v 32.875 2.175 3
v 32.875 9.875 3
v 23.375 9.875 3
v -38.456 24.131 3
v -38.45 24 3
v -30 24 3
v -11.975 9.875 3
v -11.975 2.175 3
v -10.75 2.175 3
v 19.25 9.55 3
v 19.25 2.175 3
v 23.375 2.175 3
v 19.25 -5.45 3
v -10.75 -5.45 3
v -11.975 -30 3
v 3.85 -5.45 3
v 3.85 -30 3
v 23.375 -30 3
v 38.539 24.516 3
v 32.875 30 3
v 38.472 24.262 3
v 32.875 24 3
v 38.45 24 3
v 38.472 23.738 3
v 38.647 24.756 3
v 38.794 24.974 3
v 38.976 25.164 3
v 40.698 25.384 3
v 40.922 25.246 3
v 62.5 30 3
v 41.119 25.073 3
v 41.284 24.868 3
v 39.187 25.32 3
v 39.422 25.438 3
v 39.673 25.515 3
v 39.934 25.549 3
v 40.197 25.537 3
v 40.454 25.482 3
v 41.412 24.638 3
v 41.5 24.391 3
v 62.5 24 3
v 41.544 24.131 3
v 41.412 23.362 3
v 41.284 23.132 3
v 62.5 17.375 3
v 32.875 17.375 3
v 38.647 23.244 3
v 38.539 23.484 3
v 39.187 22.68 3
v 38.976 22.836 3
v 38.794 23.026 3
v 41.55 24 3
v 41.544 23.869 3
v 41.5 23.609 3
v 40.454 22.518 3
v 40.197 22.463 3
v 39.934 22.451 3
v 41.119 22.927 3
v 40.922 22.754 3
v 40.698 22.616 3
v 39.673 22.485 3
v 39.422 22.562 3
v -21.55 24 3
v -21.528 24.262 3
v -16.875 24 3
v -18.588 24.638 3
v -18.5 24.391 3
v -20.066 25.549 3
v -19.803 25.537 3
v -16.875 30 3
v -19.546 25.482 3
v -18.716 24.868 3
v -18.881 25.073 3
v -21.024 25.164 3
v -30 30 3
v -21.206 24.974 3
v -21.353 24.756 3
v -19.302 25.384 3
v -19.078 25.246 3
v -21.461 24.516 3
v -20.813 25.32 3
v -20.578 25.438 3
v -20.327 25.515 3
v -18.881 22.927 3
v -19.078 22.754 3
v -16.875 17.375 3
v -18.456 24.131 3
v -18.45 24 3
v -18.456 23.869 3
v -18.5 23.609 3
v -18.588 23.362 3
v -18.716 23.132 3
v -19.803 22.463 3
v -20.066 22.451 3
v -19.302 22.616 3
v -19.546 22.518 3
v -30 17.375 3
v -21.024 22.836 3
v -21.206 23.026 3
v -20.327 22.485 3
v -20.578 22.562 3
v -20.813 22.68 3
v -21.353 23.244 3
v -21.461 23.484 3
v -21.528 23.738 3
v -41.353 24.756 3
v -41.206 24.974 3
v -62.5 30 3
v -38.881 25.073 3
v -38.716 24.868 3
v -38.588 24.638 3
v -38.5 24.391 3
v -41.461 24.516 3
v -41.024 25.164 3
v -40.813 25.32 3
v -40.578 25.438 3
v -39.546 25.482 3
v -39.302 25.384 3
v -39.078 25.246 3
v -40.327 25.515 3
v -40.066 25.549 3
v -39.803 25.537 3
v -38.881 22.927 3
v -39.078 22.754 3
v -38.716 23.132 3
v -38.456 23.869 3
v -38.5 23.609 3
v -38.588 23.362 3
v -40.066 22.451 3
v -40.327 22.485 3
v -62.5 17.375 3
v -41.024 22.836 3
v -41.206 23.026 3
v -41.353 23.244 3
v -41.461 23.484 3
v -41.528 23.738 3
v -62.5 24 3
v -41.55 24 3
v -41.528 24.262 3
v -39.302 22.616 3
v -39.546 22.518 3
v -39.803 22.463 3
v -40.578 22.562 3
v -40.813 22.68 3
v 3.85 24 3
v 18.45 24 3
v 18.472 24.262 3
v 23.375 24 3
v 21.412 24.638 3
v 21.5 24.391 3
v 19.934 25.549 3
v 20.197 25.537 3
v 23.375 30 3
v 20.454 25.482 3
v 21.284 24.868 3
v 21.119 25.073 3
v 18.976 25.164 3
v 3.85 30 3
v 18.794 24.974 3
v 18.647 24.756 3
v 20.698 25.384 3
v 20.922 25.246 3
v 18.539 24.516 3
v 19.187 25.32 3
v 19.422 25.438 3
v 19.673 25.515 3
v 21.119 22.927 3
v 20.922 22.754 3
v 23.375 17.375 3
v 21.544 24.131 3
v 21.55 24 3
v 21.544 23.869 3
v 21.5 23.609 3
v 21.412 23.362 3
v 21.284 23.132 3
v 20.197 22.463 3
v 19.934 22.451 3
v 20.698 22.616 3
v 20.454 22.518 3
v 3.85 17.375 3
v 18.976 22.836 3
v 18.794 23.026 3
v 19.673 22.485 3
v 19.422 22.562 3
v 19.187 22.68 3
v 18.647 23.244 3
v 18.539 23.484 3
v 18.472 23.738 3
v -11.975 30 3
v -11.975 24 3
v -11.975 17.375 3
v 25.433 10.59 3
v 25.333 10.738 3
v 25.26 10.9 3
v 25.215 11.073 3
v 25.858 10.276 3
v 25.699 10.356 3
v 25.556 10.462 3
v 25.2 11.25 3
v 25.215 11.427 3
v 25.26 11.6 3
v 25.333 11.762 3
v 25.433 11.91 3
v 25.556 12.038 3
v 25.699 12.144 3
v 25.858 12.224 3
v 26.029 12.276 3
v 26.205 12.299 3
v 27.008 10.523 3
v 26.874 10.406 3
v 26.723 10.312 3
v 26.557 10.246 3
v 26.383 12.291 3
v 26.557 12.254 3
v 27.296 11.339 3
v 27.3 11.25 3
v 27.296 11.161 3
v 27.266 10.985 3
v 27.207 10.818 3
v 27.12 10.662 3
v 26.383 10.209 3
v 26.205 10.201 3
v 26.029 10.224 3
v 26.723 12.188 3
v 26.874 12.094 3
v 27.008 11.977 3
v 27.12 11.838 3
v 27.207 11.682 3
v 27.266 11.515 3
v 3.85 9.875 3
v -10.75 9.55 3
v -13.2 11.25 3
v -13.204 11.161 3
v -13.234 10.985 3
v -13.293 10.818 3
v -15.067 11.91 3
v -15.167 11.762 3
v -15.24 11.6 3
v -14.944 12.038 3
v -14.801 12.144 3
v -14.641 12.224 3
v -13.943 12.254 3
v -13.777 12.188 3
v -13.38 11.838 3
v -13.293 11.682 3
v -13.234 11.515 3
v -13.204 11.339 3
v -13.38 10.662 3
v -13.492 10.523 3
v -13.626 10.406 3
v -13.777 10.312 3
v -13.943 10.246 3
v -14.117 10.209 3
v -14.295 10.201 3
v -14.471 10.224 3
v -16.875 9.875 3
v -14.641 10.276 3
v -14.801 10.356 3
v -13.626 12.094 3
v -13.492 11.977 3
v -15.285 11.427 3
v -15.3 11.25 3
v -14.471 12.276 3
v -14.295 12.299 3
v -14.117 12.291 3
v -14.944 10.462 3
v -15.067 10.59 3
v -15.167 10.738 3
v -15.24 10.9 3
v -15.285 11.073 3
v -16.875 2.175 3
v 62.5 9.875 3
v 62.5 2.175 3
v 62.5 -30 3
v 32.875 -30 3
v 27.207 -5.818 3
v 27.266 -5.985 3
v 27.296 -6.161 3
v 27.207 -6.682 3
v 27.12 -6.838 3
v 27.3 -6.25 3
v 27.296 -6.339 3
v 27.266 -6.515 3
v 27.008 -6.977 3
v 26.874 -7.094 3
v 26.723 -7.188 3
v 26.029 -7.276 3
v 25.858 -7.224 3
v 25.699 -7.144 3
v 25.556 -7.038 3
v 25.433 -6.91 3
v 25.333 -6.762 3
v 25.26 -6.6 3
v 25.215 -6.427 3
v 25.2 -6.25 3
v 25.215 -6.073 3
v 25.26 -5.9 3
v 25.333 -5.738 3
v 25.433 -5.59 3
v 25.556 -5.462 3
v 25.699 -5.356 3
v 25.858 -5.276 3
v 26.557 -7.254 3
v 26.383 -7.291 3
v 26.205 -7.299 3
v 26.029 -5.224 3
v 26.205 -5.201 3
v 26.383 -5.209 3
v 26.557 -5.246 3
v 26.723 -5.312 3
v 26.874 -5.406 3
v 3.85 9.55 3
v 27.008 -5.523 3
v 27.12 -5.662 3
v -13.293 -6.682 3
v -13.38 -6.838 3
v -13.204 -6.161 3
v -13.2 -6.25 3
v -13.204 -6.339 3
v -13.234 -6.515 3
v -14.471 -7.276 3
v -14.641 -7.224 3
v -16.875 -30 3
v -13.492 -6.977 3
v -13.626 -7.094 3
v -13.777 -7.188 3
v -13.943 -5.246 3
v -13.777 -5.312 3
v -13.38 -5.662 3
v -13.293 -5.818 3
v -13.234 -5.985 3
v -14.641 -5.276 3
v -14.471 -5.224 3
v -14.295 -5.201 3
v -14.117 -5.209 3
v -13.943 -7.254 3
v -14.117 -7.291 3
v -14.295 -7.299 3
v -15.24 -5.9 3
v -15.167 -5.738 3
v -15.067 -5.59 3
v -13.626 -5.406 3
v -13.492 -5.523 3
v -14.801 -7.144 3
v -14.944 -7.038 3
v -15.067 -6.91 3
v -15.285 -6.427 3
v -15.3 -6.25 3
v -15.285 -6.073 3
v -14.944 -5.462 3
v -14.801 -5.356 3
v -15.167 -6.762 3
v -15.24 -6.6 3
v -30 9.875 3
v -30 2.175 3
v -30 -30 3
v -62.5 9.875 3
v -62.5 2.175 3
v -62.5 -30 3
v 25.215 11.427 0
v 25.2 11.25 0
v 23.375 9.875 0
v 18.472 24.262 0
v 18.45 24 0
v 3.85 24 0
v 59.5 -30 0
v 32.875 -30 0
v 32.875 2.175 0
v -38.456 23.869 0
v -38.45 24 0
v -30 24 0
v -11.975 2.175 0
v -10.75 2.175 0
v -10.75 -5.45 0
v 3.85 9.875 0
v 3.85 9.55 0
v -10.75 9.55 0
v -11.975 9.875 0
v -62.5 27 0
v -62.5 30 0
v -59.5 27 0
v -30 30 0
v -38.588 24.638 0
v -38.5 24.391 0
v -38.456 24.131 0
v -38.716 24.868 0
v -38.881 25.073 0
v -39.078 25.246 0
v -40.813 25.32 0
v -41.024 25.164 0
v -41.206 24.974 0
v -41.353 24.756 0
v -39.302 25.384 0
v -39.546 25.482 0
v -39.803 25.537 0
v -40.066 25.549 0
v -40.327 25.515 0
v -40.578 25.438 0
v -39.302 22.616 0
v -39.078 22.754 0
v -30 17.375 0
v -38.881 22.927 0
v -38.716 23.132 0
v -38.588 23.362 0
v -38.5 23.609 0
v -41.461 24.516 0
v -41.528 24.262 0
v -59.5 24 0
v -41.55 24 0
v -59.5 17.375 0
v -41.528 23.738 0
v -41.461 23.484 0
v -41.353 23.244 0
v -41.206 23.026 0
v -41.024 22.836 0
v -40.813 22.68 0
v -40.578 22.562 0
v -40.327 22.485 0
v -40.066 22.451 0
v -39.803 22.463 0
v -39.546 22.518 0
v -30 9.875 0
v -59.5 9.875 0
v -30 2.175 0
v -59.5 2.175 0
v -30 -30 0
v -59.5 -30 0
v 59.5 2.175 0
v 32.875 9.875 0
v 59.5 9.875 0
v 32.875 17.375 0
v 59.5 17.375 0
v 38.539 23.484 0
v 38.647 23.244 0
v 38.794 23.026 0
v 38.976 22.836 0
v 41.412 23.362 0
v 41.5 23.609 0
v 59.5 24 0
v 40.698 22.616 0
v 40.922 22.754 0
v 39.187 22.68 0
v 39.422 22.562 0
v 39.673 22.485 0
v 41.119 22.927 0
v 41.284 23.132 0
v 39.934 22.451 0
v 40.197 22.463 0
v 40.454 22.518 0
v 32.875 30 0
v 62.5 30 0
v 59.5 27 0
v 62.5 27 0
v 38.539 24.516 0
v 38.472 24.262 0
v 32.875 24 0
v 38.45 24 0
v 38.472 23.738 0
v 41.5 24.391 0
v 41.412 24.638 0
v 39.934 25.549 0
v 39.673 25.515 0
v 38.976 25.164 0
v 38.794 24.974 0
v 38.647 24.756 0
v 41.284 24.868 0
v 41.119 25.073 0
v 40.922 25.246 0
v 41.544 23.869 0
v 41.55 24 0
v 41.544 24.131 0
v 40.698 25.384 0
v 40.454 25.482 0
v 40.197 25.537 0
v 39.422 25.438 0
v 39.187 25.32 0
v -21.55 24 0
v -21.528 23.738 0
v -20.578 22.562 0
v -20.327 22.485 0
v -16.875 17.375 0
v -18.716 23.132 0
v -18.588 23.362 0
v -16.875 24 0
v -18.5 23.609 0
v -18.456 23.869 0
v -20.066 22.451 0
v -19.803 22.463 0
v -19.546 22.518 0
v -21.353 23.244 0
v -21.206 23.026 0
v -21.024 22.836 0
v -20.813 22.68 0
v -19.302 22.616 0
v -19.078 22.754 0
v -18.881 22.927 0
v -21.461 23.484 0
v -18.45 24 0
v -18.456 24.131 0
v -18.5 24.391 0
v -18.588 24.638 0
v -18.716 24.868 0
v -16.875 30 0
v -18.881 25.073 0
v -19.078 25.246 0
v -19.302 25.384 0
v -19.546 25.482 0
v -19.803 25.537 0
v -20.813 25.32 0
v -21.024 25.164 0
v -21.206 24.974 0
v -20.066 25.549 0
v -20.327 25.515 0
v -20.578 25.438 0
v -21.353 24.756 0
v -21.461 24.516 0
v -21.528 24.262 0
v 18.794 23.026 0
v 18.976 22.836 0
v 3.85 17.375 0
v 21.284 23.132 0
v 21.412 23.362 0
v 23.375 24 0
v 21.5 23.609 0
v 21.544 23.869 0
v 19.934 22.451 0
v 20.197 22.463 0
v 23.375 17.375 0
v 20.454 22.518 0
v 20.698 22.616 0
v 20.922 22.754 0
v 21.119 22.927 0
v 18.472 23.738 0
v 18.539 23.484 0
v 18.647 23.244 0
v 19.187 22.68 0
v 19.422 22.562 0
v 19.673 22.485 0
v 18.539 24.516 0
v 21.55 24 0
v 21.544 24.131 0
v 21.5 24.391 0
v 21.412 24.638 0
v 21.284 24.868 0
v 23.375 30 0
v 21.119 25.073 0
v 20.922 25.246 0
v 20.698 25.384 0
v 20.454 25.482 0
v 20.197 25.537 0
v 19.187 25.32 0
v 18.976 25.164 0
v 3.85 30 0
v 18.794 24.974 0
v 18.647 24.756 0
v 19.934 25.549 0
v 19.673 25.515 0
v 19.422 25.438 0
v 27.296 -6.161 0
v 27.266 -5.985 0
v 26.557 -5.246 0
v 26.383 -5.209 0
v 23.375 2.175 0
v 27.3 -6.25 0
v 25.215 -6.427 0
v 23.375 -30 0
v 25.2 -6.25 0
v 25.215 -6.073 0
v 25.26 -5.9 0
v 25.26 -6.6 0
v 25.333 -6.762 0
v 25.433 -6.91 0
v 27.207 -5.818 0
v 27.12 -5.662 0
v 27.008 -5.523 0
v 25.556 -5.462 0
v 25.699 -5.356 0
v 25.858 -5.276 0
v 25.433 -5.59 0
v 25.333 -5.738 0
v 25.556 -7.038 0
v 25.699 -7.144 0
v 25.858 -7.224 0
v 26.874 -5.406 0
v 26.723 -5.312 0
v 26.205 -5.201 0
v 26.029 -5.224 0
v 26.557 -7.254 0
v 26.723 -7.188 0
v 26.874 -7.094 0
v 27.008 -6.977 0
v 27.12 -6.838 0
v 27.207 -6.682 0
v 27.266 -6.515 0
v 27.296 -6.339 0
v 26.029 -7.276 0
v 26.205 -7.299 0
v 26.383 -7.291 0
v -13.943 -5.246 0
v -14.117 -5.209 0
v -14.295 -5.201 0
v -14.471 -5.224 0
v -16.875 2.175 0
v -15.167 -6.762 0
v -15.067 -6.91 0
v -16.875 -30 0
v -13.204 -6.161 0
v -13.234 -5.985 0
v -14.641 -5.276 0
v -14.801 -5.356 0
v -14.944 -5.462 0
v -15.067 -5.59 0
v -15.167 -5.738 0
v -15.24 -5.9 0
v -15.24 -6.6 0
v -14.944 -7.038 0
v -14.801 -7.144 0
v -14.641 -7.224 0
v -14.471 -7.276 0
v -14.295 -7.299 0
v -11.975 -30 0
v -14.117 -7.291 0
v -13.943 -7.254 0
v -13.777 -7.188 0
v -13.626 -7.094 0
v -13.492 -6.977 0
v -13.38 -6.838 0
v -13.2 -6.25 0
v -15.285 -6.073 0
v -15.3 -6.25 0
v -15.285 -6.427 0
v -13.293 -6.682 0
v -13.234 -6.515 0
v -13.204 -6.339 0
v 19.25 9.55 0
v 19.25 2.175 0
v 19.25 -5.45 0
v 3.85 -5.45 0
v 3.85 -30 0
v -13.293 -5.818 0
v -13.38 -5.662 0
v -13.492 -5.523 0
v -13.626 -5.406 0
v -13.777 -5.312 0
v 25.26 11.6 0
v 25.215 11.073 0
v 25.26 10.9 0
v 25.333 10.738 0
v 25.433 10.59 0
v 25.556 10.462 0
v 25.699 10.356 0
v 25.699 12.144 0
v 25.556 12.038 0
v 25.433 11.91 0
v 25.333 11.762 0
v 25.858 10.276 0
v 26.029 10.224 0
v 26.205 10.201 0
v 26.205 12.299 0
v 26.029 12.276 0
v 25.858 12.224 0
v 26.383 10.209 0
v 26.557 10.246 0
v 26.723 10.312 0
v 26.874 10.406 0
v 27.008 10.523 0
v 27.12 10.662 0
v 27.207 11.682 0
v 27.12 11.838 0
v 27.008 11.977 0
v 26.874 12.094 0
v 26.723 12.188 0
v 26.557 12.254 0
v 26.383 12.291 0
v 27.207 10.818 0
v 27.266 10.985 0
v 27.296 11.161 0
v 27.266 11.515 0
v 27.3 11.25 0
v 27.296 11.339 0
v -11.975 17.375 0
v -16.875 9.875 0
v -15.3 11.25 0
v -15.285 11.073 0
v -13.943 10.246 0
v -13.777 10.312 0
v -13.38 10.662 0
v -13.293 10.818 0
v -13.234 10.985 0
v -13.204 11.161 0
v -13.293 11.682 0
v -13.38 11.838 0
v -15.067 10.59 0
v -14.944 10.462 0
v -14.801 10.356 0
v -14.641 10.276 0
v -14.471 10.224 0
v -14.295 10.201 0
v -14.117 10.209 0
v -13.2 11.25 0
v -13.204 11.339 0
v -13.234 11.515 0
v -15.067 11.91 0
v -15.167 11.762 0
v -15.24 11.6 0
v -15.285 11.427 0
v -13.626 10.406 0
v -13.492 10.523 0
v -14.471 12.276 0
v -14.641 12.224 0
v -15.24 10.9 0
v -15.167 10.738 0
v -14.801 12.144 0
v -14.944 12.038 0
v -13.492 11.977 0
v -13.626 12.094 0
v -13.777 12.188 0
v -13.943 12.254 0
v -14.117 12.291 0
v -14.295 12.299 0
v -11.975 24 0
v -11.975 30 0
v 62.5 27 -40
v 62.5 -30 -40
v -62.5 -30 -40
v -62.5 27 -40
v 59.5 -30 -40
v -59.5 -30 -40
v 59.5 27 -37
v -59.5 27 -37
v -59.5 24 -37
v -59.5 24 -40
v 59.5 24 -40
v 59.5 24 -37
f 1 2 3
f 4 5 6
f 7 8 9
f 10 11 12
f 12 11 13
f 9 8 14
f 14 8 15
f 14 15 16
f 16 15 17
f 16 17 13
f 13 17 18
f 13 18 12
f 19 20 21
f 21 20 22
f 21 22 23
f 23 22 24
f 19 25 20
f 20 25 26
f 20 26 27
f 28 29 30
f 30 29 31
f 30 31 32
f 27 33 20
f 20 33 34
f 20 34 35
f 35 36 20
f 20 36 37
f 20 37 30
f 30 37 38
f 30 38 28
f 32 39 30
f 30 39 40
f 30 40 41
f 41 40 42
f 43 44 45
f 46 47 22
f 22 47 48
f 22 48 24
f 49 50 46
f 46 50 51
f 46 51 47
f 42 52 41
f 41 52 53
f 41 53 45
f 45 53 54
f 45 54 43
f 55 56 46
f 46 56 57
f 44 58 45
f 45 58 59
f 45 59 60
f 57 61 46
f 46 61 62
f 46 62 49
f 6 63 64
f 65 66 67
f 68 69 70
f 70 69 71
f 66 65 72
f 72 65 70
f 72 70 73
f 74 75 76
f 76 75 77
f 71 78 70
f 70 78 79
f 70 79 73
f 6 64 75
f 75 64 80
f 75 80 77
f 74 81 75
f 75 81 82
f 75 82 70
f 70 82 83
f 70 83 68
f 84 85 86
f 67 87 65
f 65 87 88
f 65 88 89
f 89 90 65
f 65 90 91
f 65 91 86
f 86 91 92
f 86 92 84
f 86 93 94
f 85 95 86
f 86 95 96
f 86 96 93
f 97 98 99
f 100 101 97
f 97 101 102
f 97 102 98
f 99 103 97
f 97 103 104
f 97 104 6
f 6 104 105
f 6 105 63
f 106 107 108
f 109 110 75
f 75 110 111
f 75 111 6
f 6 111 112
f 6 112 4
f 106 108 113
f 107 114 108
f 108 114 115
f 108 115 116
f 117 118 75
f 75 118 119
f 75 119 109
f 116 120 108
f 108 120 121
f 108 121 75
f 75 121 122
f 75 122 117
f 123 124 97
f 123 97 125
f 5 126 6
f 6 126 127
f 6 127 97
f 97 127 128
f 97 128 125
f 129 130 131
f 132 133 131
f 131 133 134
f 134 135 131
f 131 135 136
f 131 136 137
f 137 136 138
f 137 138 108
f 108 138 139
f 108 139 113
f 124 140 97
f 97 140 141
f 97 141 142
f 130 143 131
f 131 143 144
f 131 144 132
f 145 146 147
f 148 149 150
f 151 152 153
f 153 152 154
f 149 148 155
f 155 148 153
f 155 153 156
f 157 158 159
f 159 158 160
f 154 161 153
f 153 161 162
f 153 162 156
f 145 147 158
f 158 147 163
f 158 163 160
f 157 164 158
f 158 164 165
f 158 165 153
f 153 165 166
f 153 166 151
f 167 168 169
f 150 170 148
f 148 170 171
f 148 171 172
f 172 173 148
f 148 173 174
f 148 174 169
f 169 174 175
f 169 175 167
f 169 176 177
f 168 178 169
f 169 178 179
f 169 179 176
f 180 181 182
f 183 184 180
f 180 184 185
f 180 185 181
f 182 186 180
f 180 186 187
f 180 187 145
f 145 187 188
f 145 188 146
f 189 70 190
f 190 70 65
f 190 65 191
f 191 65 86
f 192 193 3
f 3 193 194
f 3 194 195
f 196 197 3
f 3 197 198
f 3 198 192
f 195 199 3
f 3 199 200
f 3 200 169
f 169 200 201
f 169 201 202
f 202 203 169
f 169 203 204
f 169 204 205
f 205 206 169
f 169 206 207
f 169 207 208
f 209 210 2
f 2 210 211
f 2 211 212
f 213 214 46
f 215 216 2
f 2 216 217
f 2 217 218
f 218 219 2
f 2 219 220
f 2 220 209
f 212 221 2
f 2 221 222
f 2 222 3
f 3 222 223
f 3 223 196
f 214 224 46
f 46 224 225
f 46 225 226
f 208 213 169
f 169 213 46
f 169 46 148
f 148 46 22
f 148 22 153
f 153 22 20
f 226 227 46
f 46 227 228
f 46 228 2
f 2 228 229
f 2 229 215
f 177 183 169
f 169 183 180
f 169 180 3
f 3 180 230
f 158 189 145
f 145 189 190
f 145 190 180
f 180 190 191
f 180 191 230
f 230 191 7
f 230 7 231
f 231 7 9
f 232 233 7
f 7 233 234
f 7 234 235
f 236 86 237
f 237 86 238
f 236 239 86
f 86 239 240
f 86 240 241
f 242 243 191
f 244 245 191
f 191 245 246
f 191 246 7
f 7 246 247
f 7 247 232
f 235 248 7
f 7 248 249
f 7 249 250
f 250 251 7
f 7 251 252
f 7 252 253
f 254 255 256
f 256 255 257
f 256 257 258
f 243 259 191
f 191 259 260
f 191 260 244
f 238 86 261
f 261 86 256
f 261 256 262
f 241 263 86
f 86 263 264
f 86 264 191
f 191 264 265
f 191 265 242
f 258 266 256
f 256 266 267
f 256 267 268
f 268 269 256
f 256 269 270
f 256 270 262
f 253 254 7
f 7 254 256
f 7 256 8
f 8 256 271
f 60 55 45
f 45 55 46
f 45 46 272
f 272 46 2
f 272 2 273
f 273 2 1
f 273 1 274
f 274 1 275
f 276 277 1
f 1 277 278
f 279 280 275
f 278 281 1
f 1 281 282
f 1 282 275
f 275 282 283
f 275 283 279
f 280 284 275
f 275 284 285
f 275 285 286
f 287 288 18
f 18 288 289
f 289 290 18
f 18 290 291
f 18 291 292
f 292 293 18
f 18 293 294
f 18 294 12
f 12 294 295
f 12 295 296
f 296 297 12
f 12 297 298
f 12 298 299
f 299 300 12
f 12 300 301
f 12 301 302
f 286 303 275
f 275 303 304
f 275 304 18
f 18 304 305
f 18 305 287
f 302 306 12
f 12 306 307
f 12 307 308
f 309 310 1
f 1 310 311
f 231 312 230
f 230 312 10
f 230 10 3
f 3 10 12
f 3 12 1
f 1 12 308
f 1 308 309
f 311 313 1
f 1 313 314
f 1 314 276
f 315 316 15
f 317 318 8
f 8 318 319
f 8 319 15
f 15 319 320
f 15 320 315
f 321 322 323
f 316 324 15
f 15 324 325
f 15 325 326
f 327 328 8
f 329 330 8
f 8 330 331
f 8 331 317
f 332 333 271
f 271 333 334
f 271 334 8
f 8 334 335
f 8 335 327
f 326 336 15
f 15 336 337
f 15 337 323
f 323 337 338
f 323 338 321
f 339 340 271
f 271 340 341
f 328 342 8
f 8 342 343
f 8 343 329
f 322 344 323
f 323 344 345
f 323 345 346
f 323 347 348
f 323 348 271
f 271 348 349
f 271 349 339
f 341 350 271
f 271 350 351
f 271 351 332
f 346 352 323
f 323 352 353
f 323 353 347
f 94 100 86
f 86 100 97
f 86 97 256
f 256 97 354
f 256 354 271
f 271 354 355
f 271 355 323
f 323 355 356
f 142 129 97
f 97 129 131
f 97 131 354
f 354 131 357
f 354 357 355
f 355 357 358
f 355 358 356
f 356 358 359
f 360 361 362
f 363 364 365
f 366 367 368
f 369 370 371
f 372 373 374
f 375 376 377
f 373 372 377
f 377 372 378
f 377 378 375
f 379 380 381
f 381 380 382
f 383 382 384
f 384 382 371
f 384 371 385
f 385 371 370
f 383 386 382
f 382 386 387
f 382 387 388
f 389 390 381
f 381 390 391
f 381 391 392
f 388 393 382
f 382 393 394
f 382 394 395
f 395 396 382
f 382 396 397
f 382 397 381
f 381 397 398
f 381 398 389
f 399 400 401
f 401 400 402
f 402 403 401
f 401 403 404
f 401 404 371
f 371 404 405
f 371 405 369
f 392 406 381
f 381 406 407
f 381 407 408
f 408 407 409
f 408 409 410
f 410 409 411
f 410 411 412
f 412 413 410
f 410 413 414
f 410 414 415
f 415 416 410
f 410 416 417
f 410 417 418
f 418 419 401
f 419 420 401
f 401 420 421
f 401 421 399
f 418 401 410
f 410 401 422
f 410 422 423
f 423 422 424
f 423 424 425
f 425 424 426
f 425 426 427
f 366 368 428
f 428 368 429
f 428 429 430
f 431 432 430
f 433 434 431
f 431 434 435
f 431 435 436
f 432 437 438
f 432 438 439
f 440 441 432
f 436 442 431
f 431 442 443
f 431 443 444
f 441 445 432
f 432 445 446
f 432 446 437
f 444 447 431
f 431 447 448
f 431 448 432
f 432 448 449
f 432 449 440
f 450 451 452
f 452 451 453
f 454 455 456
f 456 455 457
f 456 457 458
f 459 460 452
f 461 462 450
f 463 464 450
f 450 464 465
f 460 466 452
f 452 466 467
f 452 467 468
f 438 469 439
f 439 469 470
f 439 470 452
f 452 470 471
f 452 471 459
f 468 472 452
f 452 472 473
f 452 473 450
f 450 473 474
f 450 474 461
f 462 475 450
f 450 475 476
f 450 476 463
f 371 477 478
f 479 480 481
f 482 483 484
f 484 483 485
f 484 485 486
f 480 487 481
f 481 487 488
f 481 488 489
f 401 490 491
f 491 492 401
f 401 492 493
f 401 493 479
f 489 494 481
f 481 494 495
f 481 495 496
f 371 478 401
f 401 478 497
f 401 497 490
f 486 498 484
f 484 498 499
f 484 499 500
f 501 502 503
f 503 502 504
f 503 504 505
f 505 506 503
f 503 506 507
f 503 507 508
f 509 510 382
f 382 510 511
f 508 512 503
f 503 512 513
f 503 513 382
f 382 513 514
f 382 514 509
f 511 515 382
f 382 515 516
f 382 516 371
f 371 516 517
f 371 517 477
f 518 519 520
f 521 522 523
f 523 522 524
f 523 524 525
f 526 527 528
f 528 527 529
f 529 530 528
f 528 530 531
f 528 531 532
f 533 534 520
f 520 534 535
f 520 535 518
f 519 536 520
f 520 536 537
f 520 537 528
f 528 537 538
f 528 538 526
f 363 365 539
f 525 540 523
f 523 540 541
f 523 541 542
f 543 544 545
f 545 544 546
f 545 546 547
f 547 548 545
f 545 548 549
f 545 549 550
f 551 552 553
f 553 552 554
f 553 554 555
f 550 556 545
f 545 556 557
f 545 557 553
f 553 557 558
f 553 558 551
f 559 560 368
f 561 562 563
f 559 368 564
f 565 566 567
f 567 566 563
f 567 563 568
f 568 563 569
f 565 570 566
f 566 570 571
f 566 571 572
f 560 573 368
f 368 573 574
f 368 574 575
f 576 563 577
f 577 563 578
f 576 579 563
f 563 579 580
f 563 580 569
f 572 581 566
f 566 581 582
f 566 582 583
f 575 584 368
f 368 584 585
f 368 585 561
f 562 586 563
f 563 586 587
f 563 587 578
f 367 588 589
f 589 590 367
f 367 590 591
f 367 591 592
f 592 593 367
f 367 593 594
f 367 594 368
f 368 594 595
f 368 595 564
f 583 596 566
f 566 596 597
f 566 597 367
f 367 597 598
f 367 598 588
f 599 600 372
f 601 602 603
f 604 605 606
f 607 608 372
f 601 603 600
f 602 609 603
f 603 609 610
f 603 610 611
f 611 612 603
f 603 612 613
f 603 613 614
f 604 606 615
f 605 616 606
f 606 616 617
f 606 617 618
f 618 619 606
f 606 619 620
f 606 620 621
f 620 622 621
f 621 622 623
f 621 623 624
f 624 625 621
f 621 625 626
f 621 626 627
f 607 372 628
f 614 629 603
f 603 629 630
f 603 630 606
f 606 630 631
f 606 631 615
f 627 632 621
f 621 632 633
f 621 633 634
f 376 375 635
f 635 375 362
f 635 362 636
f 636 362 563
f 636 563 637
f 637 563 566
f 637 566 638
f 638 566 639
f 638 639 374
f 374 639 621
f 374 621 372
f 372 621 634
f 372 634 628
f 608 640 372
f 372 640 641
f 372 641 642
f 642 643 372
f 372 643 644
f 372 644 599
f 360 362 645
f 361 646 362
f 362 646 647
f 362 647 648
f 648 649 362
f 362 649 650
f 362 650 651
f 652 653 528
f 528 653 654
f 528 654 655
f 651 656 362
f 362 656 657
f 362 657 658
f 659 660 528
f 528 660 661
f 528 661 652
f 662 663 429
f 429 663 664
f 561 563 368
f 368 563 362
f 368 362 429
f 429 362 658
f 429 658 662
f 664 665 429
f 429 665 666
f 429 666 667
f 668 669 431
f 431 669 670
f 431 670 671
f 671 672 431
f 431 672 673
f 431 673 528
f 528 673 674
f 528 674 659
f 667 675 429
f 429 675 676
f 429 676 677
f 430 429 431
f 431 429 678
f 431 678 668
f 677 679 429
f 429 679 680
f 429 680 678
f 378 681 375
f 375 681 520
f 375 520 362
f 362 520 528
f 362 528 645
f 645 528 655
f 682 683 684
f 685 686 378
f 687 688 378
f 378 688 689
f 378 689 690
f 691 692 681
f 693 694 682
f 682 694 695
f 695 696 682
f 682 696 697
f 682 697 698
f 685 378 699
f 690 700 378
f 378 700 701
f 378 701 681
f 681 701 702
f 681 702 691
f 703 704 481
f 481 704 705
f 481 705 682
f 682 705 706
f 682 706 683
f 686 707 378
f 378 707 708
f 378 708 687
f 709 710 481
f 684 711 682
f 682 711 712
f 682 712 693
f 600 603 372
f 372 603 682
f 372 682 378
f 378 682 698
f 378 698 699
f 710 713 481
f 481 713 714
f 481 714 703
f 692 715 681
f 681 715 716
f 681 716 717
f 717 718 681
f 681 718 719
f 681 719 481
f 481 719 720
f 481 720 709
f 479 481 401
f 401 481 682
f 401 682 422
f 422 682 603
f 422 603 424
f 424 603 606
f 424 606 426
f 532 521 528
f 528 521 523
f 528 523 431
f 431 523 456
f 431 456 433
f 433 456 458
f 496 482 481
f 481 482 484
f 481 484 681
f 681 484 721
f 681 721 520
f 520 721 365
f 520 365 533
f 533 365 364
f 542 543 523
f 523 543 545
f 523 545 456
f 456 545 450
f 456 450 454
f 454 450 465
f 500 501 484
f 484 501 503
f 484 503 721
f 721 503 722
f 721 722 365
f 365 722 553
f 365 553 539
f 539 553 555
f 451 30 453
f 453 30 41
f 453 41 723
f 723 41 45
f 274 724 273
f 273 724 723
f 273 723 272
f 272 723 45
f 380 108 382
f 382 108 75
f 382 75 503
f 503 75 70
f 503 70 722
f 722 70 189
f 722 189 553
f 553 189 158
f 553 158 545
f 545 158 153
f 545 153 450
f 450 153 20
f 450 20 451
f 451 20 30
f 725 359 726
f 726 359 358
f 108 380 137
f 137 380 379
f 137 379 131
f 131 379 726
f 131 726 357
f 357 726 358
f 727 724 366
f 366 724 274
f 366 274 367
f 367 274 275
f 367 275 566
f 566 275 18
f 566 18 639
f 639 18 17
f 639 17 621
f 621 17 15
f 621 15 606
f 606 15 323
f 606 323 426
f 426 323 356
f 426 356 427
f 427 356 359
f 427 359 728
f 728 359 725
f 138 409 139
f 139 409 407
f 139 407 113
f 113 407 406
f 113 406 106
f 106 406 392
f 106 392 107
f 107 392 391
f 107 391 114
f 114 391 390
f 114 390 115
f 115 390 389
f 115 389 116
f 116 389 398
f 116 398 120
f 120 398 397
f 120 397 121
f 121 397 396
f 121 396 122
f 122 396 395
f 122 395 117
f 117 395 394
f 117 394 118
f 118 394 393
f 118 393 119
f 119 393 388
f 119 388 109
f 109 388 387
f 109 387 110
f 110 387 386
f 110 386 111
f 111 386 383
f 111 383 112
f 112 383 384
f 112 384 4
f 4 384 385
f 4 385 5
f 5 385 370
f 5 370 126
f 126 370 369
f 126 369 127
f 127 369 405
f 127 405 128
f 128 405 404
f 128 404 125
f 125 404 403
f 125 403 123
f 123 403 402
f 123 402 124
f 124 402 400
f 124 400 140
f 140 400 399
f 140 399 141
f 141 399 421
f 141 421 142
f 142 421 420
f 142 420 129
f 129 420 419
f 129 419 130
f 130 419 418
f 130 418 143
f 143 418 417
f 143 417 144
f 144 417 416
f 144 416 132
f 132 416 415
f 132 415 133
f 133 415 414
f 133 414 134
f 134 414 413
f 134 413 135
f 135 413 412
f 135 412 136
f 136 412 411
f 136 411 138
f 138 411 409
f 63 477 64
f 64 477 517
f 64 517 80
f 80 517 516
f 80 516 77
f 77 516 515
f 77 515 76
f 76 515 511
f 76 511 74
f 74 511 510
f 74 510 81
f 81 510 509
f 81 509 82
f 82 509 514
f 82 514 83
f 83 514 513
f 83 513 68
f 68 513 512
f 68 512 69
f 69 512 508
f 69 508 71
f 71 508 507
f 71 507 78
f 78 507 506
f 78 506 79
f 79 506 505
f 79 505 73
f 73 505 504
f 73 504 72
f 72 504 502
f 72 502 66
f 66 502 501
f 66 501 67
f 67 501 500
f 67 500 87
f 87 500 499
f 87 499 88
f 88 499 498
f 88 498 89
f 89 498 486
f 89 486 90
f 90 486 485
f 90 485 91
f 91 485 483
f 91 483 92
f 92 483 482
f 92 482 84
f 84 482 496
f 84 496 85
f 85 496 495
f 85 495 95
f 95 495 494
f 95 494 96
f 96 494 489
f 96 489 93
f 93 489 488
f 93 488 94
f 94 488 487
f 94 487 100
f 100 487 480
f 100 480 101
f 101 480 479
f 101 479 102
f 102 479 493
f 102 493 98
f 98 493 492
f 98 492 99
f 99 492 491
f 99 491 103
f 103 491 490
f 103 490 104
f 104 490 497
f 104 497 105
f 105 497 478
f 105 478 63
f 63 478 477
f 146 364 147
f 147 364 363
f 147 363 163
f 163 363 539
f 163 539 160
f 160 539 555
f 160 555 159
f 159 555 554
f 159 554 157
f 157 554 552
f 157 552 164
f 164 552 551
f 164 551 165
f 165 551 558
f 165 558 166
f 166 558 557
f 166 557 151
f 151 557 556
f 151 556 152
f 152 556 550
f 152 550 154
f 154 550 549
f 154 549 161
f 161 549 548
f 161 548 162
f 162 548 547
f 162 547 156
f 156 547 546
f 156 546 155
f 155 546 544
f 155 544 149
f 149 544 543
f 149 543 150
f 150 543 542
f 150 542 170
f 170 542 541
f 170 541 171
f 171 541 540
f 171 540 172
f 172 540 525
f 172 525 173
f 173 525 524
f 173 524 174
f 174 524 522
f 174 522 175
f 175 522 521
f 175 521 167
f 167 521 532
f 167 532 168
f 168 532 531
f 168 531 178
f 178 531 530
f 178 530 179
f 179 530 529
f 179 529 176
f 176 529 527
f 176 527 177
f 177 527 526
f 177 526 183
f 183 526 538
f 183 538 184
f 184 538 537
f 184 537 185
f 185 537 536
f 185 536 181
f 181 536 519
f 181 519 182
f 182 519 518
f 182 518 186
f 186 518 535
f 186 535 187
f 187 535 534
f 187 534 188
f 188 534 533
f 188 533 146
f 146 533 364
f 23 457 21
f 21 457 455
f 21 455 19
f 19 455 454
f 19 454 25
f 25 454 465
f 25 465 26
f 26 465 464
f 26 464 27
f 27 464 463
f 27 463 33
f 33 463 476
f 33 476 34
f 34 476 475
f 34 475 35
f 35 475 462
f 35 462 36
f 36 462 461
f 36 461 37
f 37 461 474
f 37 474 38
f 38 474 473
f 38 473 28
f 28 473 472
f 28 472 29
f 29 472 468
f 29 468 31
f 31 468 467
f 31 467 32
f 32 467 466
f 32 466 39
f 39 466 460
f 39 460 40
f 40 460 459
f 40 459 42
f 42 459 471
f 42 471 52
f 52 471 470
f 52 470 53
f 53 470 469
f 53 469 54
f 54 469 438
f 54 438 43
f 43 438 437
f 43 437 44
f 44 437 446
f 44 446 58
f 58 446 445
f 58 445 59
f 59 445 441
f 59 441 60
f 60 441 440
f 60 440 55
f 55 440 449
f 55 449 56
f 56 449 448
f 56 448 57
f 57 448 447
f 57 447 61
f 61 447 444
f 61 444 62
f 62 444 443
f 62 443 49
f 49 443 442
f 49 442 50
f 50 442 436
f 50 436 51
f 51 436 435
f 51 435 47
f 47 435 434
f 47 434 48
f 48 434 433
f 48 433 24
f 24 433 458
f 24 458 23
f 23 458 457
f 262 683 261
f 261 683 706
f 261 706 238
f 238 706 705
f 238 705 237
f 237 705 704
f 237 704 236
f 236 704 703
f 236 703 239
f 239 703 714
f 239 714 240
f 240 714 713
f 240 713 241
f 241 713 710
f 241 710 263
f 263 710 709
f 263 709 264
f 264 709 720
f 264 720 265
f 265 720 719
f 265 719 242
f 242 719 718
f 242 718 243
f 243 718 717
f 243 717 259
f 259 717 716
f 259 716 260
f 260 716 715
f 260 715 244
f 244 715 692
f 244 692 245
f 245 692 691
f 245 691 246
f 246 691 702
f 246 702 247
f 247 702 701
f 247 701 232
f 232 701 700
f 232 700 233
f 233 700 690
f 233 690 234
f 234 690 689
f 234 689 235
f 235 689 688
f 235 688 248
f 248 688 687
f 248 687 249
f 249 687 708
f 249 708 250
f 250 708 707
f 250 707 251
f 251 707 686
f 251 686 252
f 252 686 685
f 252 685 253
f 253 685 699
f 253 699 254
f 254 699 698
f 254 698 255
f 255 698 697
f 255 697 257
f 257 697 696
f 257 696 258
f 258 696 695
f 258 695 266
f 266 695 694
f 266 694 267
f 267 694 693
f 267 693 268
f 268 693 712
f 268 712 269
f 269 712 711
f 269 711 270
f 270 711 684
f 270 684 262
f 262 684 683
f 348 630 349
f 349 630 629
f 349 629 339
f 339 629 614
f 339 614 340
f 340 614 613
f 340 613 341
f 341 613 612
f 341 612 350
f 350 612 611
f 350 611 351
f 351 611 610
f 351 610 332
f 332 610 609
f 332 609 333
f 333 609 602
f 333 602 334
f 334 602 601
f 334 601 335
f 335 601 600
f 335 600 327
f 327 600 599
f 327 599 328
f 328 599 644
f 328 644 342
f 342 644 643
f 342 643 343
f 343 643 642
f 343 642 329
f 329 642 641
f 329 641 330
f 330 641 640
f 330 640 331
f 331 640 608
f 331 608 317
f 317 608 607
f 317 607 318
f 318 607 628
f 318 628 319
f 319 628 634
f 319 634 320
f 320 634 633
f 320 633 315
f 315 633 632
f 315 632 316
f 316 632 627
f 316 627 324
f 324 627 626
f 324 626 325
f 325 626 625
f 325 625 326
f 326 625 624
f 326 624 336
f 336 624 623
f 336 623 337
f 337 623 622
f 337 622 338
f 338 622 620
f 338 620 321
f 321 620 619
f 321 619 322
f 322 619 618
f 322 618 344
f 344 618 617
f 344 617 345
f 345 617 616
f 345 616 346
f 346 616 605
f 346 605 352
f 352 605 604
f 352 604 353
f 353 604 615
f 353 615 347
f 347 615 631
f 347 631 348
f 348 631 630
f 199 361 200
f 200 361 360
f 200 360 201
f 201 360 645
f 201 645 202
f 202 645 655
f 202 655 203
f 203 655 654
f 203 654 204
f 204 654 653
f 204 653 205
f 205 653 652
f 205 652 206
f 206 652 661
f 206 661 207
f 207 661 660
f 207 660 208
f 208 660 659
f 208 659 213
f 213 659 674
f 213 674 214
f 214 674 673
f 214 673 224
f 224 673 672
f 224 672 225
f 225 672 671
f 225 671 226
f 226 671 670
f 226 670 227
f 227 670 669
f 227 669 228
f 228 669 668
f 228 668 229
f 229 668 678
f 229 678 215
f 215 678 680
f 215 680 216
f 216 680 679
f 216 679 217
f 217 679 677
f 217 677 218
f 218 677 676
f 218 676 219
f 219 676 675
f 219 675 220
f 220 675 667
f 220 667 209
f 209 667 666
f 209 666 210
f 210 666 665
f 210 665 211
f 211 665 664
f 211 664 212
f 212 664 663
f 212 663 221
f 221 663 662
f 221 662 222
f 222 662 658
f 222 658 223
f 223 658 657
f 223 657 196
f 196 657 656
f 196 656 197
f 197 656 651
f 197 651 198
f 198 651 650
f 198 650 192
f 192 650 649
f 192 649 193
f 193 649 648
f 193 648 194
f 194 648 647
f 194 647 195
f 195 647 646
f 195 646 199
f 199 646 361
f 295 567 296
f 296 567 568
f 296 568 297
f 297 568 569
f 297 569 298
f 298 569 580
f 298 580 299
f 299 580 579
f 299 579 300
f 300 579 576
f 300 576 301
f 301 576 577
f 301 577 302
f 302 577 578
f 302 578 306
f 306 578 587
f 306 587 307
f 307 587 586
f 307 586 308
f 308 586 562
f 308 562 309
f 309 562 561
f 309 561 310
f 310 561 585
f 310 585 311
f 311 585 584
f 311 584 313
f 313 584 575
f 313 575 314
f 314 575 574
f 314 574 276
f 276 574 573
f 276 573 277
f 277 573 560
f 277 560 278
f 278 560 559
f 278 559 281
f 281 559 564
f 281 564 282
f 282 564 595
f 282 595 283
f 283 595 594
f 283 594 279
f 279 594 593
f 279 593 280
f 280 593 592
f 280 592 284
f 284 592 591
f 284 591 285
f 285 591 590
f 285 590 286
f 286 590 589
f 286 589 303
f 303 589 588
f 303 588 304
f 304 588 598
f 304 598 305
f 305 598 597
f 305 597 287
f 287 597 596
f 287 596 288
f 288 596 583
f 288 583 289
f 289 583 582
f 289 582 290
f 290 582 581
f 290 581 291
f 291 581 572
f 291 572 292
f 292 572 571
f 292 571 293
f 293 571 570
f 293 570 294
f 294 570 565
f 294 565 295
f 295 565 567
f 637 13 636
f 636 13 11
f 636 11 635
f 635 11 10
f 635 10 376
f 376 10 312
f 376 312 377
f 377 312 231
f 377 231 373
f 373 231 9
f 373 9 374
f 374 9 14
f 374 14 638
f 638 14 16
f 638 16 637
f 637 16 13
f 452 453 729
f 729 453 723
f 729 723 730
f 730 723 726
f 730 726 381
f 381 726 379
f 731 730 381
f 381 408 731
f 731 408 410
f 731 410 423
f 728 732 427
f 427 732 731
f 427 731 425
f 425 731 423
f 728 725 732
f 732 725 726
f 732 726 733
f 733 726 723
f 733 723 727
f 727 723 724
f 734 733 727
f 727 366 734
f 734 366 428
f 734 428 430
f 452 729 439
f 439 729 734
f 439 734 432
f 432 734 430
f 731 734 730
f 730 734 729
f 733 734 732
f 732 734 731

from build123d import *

# Parameters (mm, degrees)
SKETCH_1_W      = 125
SKETCH_1_H      = 60
SKETCH_1_R      = 1.55
SKETCH_1_R_2    = 1.05
SKETCH_1_W_2    = 30
SKETCH_1_H_2    = 15
EXTRUDE_1_DEPTH = 3
SKETCH_4_W      = 3
SKETCH_4_H      = 57
EXTRUDE_3_DEPTH = 43
SKETCH_6_W      = 125
SKETCH_6_H      = 3
EXTRUDE_5_DEPTH = 3


with BuildPart() as part:
    # 草图1 → 凸台-拉伸1 (new body)
    with BuildSketch(Plane.XY):
        Rectangle(SKETCH_1_W, SKETCH_1_H)
        with Locations((-40, 24)):
            Circle(SKETCH_1_R, mode=Mode.SUBTRACT)
        with Locations((-20, 24)):
            Circle(SKETCH_1_R, mode=Mode.SUBTRACT)
        with Locations((20, 24)):
            Circle(SKETCH_1_R, mode=Mode.SUBTRACT)
        with Locations((40, 24)):
            Circle(SKETCH_1_R, mode=Mode.SUBTRACT)
        with Locations((-14.25, 11.25)):
            Circle(SKETCH_1_R_2, mode=Mode.SUBTRACT)
        with Locations((-14.25, -6.25)):
            Circle(SKETCH_1_R_2, mode=Mode.SUBTRACT)
        with Locations((26.25, 11.25)):
            Circle(SKETCH_1_R_2, mode=Mode.SUBTRACT)
        with Locations((26.25, -6.25)):
            Circle(SKETCH_1_R_2, mode=Mode.SUBTRACT)
        with Locations((4.25, 2.05)):
            Rectangle(SKETCH_1_W_2, SKETCH_1_H_2, mode=Mode.SUBTRACT)
    extrude(amount=EXTRUDE_1_DEPTH)

    # 草图4 → 凸台-拉伸3 (add)
    with BuildSketch(Plane.XY.offset(3)):
        with Locations((-61, -1.5)):
            Rectangle(SKETCH_4_W, SKETCH_4_H)
        with Locations((61, -1.5)):
            Rectangle(SKETCH_4_W, SKETCH_4_H)
    extrude(amount=-EXTRUDE_3_DEPTH)

    # 草图6 → 凸台-拉伸5 (add)
    with BuildSketch(Plane(origin=(0, 27, 0), x_dir=(1, 0, 0), z_dir=(0, 1, 0))):
        with Locations((0, 38.5)):
            Rectangle(SKETCH_6_W, SKETCH_6_H)
    extrude(amount=-EXTRUDE_5_DEPTH)


solid = part.part
